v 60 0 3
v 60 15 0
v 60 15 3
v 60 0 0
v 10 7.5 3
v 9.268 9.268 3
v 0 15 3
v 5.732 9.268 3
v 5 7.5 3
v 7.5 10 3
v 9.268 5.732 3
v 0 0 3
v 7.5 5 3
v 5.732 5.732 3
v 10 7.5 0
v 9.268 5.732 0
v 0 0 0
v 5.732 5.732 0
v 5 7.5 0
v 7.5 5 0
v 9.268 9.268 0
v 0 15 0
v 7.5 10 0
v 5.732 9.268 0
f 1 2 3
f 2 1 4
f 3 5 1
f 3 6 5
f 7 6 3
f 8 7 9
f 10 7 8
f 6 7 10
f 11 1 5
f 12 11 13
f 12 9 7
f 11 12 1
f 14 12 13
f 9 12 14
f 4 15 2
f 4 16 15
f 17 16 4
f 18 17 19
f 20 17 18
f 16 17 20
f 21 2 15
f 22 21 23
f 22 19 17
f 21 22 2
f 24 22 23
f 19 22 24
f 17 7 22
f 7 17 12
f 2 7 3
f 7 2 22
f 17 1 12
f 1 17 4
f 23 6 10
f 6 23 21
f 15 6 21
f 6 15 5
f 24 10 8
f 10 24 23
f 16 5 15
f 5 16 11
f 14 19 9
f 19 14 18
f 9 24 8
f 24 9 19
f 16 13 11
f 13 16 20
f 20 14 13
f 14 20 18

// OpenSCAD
// Parameters for the flat bar with a hole
bar_length = 60;       // Length of the bar
bar_width = 15;        // Width of the bar
bar_thickness = 3;     // Thickness of the bar
hole_diameter = 5;     // Diameter of the hole
hole_offset = 7.5;     // Distance from the center of the hole to the end of the bar

// Main module to create the flat bar with a hole
module flat_bar_with_hole() {
    // Create the rectangular bar
    difference() {
        cube([bar_length, bar_width, bar_thickness], center = false);
        
        // Subtract the hole
        translate([hole_offset, bar_width / 2, bar_thickness / 2])
            rotate([0, 0, 0]) // Ensure the hole is properly aligned
            cylinder(r = hole_diameter / 2, h = bar_thickness + 1, center = true);
    }
}

// Render the flat bar with a hole
flat_bar_with_hole();
